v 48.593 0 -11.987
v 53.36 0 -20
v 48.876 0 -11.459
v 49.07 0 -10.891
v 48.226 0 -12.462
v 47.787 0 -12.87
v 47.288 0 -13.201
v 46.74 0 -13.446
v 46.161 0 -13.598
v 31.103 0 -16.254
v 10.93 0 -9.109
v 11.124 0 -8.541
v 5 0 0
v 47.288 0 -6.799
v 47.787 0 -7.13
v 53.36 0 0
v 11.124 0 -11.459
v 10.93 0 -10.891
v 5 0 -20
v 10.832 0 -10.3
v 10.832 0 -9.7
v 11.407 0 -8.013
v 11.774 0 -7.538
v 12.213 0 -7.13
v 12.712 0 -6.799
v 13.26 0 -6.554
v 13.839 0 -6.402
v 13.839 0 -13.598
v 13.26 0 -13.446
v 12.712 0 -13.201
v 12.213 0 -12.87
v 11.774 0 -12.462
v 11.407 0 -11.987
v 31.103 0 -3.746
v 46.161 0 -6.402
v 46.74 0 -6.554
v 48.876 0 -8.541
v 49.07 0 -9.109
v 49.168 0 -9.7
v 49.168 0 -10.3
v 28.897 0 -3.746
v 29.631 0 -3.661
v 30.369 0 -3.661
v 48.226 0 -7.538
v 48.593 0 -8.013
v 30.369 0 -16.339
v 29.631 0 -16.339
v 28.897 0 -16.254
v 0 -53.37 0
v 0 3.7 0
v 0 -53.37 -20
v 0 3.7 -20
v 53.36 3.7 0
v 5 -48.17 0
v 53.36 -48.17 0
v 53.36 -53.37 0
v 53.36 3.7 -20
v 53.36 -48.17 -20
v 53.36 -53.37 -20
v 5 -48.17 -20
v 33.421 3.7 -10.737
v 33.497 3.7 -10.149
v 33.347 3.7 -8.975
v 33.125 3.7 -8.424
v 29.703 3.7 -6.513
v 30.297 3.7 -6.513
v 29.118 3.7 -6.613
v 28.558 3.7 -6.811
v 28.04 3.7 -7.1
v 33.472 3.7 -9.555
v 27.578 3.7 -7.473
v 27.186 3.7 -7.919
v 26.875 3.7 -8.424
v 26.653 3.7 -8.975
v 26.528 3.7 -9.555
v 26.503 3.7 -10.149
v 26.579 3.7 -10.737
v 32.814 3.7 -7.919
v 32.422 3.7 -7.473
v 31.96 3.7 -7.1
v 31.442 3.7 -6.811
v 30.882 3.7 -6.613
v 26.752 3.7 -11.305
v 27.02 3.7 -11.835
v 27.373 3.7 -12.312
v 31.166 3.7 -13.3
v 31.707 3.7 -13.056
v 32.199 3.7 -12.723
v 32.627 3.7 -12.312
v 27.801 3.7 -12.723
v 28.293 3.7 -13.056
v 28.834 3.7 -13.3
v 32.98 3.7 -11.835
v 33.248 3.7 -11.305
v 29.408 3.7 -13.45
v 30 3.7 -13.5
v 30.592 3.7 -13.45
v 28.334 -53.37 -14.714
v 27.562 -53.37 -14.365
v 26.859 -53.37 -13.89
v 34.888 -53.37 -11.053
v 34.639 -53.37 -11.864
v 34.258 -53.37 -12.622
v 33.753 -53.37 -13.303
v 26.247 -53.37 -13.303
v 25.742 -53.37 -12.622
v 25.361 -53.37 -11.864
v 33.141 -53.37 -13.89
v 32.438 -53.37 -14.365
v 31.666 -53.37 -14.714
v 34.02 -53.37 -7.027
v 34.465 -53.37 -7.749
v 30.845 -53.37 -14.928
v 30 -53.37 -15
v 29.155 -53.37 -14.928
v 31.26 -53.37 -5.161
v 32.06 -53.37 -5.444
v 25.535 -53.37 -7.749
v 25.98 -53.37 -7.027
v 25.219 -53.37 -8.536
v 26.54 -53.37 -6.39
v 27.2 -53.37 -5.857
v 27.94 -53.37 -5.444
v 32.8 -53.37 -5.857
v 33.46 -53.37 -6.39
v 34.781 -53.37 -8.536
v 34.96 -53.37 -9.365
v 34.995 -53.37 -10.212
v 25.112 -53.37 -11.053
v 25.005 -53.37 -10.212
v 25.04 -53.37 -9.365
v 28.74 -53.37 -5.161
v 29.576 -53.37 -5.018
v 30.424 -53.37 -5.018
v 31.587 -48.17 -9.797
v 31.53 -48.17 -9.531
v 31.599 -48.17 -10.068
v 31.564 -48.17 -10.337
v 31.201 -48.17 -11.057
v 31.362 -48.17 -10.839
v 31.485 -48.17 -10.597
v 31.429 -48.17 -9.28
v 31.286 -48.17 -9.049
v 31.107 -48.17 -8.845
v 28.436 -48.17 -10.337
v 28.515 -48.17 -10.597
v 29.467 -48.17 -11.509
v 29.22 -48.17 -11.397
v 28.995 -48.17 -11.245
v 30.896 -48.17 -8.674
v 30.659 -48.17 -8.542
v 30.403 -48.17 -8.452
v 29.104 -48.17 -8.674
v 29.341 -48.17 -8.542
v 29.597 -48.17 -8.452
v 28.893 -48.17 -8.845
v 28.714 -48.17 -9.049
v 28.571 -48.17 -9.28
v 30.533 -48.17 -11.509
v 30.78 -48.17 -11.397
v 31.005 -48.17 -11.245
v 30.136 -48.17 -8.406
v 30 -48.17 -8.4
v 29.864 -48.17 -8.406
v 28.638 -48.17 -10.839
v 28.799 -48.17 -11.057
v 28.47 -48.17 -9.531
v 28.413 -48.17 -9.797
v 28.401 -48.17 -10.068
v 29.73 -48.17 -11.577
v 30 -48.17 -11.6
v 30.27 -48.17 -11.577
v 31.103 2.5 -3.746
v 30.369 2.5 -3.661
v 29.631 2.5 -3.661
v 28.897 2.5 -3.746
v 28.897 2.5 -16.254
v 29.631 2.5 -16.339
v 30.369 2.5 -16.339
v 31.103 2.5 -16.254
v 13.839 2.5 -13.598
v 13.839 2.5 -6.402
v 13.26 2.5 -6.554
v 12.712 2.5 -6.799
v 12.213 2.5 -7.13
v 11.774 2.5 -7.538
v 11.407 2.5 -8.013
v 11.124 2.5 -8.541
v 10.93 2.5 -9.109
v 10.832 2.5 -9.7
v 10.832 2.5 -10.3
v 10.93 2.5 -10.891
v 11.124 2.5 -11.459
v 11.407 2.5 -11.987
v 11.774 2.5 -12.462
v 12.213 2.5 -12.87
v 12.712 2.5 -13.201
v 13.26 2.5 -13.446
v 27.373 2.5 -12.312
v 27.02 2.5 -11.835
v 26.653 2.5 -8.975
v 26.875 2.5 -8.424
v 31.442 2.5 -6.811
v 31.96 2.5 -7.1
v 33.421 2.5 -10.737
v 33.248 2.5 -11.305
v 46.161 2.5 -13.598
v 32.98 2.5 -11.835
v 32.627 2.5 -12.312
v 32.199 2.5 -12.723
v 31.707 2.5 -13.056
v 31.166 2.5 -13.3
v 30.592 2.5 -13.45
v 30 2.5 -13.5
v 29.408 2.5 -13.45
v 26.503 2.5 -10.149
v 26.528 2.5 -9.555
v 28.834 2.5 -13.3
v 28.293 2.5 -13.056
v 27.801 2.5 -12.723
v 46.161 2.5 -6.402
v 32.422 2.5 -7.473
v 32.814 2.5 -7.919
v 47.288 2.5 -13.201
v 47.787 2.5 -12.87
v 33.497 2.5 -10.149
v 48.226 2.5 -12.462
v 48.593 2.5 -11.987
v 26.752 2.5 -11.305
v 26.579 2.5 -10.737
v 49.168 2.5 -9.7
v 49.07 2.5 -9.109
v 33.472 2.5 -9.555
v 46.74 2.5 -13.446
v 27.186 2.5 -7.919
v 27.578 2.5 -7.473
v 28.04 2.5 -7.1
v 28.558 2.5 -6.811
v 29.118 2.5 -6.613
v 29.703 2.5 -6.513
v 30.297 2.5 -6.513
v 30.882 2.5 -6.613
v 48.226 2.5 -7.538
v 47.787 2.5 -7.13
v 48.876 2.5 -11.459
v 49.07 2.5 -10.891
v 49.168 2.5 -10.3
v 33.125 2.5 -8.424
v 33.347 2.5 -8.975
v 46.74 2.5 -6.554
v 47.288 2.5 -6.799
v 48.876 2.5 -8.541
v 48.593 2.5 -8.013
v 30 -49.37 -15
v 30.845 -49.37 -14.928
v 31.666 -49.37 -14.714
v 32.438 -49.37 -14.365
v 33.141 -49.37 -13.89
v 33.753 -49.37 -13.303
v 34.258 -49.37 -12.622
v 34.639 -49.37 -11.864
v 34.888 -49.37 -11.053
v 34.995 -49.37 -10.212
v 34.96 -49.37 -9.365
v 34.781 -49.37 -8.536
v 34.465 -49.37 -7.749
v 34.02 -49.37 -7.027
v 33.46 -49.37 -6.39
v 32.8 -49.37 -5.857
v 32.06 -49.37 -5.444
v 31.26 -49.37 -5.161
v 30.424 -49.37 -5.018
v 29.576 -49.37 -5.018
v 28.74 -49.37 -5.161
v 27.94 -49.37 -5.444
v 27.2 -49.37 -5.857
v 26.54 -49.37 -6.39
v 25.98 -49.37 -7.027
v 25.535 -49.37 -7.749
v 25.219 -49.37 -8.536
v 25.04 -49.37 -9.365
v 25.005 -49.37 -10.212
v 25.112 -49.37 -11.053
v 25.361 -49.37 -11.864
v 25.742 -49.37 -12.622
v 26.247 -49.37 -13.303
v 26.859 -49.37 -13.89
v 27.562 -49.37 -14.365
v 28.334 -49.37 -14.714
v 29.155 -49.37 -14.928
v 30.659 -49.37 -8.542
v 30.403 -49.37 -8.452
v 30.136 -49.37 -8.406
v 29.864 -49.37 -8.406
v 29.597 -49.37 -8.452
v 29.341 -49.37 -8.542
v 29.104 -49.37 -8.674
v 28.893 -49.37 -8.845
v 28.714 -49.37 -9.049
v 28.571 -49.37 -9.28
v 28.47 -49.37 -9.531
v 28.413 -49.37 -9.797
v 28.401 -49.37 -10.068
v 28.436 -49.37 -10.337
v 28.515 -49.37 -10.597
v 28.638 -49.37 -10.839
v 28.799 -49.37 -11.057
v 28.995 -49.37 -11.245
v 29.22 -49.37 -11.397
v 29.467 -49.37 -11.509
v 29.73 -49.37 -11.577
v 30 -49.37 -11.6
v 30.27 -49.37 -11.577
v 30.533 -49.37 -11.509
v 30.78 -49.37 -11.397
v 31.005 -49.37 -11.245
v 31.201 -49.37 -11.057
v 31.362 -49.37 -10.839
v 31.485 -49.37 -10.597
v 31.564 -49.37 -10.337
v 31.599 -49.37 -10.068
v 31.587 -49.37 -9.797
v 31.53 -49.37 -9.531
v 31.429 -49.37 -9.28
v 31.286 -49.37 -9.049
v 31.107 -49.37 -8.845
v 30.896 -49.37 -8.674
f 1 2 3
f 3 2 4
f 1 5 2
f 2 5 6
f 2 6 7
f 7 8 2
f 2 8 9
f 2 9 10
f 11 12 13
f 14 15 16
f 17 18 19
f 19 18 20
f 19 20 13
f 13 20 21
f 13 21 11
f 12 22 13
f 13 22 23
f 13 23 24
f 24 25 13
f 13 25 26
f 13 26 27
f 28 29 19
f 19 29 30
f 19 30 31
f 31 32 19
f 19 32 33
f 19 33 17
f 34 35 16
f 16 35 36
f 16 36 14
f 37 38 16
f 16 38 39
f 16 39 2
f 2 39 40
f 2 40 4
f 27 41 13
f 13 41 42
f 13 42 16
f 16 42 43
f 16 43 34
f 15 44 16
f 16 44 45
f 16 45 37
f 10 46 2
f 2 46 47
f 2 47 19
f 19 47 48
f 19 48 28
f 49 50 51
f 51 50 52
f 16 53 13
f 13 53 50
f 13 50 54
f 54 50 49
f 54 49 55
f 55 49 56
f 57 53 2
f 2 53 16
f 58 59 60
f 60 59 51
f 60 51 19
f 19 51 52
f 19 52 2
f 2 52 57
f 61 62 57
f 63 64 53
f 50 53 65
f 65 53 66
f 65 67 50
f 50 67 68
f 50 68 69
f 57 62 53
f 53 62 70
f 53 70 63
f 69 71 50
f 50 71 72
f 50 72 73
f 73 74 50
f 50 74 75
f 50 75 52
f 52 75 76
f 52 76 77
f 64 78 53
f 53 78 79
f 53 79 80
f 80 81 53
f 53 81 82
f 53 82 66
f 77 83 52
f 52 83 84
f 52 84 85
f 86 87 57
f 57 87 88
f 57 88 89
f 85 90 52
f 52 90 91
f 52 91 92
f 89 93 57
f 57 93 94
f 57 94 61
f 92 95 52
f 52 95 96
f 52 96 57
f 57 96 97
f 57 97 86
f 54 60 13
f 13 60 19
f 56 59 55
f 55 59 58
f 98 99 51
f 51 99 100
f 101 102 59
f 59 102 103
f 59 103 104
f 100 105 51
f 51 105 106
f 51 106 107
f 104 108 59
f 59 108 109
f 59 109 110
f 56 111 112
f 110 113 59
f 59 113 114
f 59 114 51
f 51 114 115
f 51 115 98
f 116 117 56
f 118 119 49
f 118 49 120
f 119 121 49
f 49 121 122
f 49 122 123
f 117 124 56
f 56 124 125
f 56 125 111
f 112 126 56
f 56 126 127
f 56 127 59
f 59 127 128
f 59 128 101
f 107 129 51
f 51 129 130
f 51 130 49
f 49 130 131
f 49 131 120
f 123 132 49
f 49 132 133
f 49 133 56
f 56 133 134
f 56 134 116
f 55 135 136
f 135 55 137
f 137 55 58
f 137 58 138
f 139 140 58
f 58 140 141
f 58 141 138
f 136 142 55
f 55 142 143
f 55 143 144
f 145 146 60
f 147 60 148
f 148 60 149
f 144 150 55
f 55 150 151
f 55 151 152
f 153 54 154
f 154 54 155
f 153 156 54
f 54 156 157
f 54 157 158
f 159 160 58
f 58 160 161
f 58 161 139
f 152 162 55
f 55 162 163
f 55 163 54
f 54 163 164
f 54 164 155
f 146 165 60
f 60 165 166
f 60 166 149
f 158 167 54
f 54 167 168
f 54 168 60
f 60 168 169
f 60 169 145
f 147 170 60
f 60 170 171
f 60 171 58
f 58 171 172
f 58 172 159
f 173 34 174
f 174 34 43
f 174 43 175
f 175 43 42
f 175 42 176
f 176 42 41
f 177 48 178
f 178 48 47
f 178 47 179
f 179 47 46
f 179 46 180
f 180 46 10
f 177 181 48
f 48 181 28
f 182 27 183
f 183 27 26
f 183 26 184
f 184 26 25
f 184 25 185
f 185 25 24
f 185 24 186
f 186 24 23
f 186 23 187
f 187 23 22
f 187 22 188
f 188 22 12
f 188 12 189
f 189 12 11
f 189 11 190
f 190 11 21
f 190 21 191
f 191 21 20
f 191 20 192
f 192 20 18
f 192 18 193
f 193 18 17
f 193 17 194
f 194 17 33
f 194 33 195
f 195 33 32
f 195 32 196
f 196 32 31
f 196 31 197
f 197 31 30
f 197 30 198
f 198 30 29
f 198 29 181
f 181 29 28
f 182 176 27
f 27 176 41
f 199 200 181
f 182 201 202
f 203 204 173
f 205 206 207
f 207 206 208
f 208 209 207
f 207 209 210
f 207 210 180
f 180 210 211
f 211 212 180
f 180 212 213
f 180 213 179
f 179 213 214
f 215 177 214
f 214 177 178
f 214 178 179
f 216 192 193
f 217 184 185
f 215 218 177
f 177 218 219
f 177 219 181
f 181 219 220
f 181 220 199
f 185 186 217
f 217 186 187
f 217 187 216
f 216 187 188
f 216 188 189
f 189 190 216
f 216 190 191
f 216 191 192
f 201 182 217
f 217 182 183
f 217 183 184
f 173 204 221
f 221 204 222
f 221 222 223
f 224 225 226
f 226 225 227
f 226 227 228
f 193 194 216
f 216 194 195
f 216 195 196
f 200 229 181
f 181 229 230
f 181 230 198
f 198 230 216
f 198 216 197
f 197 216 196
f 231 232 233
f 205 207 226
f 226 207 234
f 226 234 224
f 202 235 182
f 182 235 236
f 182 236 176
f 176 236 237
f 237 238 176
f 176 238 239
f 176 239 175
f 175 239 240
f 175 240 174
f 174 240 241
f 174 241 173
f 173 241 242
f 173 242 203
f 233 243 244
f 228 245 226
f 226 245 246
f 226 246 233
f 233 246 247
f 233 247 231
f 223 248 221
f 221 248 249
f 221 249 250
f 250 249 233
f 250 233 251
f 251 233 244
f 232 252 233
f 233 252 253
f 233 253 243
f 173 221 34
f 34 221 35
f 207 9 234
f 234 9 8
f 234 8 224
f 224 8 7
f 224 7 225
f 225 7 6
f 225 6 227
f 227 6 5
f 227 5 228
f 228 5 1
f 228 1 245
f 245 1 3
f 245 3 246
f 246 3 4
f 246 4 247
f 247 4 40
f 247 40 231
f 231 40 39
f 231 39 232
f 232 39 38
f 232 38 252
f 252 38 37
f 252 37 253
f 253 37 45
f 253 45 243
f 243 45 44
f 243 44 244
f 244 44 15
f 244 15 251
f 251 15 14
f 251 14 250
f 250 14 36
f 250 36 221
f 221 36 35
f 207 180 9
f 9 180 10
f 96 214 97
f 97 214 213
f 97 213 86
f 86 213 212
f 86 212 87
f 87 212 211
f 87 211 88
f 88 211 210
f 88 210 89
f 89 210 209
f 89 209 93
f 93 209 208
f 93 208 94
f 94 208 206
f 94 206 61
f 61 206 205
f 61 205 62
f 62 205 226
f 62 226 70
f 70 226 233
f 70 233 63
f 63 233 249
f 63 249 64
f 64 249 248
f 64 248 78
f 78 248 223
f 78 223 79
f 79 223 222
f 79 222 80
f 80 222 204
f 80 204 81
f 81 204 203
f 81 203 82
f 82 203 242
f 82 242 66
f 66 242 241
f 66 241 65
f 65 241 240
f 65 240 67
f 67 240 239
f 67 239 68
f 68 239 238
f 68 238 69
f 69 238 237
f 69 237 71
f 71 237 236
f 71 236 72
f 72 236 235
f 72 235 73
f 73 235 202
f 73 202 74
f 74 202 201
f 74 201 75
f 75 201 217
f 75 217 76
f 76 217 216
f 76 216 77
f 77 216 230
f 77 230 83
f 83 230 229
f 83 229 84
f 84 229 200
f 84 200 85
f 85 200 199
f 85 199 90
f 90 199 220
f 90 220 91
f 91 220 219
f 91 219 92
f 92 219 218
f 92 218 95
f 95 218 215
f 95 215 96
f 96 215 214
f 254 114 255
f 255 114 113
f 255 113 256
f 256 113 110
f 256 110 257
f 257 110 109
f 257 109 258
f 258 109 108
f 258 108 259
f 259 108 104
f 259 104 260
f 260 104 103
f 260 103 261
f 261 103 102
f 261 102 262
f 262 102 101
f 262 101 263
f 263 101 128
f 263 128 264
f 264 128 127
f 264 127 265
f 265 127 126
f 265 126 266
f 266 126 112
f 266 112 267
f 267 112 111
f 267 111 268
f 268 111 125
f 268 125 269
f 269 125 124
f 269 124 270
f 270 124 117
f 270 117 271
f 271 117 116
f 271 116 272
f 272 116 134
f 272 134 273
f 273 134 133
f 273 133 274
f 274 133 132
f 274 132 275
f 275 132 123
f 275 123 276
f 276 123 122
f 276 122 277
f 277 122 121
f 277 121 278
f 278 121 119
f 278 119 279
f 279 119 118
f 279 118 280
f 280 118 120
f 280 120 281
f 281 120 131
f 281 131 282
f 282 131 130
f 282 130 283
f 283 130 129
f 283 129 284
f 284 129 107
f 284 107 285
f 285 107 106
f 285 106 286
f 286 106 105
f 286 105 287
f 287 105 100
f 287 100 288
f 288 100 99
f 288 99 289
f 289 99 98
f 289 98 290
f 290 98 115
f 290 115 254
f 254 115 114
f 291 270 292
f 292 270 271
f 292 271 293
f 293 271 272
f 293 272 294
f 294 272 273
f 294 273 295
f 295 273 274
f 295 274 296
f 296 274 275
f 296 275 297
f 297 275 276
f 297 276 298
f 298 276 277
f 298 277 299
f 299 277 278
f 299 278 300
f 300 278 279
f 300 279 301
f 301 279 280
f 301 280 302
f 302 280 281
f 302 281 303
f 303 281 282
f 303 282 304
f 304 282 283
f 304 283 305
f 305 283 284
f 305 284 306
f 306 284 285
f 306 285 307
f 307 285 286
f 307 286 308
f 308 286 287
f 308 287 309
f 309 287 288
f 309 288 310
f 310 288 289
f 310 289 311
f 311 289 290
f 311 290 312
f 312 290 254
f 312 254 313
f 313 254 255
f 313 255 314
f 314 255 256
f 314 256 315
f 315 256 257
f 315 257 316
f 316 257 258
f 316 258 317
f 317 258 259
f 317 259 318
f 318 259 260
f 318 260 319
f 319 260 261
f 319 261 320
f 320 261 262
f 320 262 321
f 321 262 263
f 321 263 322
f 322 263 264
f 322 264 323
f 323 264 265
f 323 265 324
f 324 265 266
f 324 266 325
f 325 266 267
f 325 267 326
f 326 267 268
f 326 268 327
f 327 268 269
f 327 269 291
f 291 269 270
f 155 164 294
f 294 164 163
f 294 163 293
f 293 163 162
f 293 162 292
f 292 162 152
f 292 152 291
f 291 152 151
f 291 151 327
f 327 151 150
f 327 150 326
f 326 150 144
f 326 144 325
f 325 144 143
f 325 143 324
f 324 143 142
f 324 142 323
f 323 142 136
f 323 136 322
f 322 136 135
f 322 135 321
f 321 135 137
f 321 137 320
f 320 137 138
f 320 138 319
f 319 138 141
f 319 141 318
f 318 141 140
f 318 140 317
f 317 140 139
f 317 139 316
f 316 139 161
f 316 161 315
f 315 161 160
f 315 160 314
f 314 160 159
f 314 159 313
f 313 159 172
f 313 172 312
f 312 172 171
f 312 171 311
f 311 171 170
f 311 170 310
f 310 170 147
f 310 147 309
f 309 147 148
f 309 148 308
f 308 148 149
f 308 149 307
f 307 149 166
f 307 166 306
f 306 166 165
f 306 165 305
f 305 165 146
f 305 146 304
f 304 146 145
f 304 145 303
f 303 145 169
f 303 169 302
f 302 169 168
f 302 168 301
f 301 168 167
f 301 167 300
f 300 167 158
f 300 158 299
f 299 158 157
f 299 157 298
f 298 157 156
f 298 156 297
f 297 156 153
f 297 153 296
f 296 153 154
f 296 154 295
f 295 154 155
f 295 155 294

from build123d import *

# Parameters (mm, degrees)
CROQUIS1_W              = 53.36
CROQUIS1_H              = 20
SALIENTE_EXTRUIR1_DEPTH = 3.7
CROQUIS2_W              = 5
CROQUIS2_H              = 20
SALIENTE_EXTRUIR2_DEPTH = 48.17
CROQUIS3_W              = 53.36
CROQUIS3_H              = 20
SALIENTE_EXTRUIR3_DEPTH = 5.2
CORTAR_EXTRUIR1_DEPTH   = 2.5
CROQUIS5_R              = 3.5
CORTAR_EXTRUIR2_DEPTH   = 80.804426569
CROQUIS6_R              = 5
CORTAR_EXTRUIR3_DEPTH   = 4
CROQUIS7_R              = 1.6
CORTAR_EXTRUIR4_DEPTH   = 78.86985617


with BuildPart() as part:
    # Croquis1 → Saliente-Extruir1 (new body)
    with BuildSketch(Plane(origin=(0, 0, 0), x_dir=(1, 0, 0), z_dir=(0, 1, 0))):
        with Locations((26.68, 10)):
            Rectangle(CROQUIS1_W, CROQUIS1_H)
    extrude(amount=SALIENTE_EXTRUIR1_DEPTH)

    # Croquis2 → Saliente-Extruir2 (add)
    with BuildSketch(Plane.XZ):
        with Locations((2.5, -10)):
            Rectangle(CROQUIS2_W, CROQUIS2_H)
    extrude(amount=SALIENTE_EXTRUIR2_DEPTH)

    # Croquis3 → Saliente-Extruir3 (add)
    with BuildSketch(Plane.XZ.offset(48.17)):
        with Locations((26.68, -10)):
            Rectangle(CROQUIS3_W, CROQUIS3_H)
    extrude(amount=SALIENTE_EXTRUIR3_DEPTH)

    # Croquis4 → Cortar-Extruir1 (cut)
    with BuildSketch(Plane.XZ):
        with BuildLine():
            Line((28.897334072, -3.746470768), (13.839427952, -6.40158589))
            ThreePointArc((13.839427952, -6.40158589), (10.82, -10), (13.839427952, -13.59841411))
            Line((13.839427952, -13.59841411), (28.897334072, -16.253529232))
            ThreePointArc((28.897334072, -16.253529232), (29.446561034, -16.325836333), (30, -16.35))
            Line((30, -16.35), (30, -3.65))
            ThreePointArc((30, -3.65), (29.446561034, -3.674163667), (28.897334072, -3.746470768))
        make_face()
    cortar_extruir1 = extrude(amount=-CORTAR_EXTRUIR1_DEPTH, mode=Mode.SUBTRACT)

    # Simetría1: Cortar-Extruir1 across plane
    add(cortar_extruir1.mirror(Plane(origin=(30, 2.5, -3.65), x_dir=(0, 0, 1), z_dir=(1, 0, 0))), mode=Mode.SUBTRACT)

    # Croquis5 → Cortar-Extruir2 (cut, through all)
    with BuildSketch(Plane.XZ.offset(-2.5)):
        with Locations(Location((30, -10, 0), (0, 0, 270))):
            Circle(CROQUIS5_R)
    extrude(amount=-CORTAR_EXTRUIR2_DEPTH, mode=Mode.SUBTRACT)

    # Croquis6 → Cortar-Extruir3 (cut)
    with BuildSketch(Plane.XZ.offset(53.37)):
        with Locations(Location((30, -10, 0), (0, 0, 270))):
            Circle(CROQUIS6_R)
    extrude(amount=-CORTAR_EXTRUIR3_DEPTH, mode=Mode.SUBTRACT)

    # Croquis7 → Cortar-Extruir4 (cut, through all)
    with BuildSketch(Plane.XZ.offset(49.37)):
        with Locations(Location((30, -10, 0), (0, 0, 270))):
            Circle(CROQUIS7_R)
    extrude(amount=-CORTAR_EXTRUIR4_DEPTH, mode=Mode.SUBTRACT)


solid = part.part
